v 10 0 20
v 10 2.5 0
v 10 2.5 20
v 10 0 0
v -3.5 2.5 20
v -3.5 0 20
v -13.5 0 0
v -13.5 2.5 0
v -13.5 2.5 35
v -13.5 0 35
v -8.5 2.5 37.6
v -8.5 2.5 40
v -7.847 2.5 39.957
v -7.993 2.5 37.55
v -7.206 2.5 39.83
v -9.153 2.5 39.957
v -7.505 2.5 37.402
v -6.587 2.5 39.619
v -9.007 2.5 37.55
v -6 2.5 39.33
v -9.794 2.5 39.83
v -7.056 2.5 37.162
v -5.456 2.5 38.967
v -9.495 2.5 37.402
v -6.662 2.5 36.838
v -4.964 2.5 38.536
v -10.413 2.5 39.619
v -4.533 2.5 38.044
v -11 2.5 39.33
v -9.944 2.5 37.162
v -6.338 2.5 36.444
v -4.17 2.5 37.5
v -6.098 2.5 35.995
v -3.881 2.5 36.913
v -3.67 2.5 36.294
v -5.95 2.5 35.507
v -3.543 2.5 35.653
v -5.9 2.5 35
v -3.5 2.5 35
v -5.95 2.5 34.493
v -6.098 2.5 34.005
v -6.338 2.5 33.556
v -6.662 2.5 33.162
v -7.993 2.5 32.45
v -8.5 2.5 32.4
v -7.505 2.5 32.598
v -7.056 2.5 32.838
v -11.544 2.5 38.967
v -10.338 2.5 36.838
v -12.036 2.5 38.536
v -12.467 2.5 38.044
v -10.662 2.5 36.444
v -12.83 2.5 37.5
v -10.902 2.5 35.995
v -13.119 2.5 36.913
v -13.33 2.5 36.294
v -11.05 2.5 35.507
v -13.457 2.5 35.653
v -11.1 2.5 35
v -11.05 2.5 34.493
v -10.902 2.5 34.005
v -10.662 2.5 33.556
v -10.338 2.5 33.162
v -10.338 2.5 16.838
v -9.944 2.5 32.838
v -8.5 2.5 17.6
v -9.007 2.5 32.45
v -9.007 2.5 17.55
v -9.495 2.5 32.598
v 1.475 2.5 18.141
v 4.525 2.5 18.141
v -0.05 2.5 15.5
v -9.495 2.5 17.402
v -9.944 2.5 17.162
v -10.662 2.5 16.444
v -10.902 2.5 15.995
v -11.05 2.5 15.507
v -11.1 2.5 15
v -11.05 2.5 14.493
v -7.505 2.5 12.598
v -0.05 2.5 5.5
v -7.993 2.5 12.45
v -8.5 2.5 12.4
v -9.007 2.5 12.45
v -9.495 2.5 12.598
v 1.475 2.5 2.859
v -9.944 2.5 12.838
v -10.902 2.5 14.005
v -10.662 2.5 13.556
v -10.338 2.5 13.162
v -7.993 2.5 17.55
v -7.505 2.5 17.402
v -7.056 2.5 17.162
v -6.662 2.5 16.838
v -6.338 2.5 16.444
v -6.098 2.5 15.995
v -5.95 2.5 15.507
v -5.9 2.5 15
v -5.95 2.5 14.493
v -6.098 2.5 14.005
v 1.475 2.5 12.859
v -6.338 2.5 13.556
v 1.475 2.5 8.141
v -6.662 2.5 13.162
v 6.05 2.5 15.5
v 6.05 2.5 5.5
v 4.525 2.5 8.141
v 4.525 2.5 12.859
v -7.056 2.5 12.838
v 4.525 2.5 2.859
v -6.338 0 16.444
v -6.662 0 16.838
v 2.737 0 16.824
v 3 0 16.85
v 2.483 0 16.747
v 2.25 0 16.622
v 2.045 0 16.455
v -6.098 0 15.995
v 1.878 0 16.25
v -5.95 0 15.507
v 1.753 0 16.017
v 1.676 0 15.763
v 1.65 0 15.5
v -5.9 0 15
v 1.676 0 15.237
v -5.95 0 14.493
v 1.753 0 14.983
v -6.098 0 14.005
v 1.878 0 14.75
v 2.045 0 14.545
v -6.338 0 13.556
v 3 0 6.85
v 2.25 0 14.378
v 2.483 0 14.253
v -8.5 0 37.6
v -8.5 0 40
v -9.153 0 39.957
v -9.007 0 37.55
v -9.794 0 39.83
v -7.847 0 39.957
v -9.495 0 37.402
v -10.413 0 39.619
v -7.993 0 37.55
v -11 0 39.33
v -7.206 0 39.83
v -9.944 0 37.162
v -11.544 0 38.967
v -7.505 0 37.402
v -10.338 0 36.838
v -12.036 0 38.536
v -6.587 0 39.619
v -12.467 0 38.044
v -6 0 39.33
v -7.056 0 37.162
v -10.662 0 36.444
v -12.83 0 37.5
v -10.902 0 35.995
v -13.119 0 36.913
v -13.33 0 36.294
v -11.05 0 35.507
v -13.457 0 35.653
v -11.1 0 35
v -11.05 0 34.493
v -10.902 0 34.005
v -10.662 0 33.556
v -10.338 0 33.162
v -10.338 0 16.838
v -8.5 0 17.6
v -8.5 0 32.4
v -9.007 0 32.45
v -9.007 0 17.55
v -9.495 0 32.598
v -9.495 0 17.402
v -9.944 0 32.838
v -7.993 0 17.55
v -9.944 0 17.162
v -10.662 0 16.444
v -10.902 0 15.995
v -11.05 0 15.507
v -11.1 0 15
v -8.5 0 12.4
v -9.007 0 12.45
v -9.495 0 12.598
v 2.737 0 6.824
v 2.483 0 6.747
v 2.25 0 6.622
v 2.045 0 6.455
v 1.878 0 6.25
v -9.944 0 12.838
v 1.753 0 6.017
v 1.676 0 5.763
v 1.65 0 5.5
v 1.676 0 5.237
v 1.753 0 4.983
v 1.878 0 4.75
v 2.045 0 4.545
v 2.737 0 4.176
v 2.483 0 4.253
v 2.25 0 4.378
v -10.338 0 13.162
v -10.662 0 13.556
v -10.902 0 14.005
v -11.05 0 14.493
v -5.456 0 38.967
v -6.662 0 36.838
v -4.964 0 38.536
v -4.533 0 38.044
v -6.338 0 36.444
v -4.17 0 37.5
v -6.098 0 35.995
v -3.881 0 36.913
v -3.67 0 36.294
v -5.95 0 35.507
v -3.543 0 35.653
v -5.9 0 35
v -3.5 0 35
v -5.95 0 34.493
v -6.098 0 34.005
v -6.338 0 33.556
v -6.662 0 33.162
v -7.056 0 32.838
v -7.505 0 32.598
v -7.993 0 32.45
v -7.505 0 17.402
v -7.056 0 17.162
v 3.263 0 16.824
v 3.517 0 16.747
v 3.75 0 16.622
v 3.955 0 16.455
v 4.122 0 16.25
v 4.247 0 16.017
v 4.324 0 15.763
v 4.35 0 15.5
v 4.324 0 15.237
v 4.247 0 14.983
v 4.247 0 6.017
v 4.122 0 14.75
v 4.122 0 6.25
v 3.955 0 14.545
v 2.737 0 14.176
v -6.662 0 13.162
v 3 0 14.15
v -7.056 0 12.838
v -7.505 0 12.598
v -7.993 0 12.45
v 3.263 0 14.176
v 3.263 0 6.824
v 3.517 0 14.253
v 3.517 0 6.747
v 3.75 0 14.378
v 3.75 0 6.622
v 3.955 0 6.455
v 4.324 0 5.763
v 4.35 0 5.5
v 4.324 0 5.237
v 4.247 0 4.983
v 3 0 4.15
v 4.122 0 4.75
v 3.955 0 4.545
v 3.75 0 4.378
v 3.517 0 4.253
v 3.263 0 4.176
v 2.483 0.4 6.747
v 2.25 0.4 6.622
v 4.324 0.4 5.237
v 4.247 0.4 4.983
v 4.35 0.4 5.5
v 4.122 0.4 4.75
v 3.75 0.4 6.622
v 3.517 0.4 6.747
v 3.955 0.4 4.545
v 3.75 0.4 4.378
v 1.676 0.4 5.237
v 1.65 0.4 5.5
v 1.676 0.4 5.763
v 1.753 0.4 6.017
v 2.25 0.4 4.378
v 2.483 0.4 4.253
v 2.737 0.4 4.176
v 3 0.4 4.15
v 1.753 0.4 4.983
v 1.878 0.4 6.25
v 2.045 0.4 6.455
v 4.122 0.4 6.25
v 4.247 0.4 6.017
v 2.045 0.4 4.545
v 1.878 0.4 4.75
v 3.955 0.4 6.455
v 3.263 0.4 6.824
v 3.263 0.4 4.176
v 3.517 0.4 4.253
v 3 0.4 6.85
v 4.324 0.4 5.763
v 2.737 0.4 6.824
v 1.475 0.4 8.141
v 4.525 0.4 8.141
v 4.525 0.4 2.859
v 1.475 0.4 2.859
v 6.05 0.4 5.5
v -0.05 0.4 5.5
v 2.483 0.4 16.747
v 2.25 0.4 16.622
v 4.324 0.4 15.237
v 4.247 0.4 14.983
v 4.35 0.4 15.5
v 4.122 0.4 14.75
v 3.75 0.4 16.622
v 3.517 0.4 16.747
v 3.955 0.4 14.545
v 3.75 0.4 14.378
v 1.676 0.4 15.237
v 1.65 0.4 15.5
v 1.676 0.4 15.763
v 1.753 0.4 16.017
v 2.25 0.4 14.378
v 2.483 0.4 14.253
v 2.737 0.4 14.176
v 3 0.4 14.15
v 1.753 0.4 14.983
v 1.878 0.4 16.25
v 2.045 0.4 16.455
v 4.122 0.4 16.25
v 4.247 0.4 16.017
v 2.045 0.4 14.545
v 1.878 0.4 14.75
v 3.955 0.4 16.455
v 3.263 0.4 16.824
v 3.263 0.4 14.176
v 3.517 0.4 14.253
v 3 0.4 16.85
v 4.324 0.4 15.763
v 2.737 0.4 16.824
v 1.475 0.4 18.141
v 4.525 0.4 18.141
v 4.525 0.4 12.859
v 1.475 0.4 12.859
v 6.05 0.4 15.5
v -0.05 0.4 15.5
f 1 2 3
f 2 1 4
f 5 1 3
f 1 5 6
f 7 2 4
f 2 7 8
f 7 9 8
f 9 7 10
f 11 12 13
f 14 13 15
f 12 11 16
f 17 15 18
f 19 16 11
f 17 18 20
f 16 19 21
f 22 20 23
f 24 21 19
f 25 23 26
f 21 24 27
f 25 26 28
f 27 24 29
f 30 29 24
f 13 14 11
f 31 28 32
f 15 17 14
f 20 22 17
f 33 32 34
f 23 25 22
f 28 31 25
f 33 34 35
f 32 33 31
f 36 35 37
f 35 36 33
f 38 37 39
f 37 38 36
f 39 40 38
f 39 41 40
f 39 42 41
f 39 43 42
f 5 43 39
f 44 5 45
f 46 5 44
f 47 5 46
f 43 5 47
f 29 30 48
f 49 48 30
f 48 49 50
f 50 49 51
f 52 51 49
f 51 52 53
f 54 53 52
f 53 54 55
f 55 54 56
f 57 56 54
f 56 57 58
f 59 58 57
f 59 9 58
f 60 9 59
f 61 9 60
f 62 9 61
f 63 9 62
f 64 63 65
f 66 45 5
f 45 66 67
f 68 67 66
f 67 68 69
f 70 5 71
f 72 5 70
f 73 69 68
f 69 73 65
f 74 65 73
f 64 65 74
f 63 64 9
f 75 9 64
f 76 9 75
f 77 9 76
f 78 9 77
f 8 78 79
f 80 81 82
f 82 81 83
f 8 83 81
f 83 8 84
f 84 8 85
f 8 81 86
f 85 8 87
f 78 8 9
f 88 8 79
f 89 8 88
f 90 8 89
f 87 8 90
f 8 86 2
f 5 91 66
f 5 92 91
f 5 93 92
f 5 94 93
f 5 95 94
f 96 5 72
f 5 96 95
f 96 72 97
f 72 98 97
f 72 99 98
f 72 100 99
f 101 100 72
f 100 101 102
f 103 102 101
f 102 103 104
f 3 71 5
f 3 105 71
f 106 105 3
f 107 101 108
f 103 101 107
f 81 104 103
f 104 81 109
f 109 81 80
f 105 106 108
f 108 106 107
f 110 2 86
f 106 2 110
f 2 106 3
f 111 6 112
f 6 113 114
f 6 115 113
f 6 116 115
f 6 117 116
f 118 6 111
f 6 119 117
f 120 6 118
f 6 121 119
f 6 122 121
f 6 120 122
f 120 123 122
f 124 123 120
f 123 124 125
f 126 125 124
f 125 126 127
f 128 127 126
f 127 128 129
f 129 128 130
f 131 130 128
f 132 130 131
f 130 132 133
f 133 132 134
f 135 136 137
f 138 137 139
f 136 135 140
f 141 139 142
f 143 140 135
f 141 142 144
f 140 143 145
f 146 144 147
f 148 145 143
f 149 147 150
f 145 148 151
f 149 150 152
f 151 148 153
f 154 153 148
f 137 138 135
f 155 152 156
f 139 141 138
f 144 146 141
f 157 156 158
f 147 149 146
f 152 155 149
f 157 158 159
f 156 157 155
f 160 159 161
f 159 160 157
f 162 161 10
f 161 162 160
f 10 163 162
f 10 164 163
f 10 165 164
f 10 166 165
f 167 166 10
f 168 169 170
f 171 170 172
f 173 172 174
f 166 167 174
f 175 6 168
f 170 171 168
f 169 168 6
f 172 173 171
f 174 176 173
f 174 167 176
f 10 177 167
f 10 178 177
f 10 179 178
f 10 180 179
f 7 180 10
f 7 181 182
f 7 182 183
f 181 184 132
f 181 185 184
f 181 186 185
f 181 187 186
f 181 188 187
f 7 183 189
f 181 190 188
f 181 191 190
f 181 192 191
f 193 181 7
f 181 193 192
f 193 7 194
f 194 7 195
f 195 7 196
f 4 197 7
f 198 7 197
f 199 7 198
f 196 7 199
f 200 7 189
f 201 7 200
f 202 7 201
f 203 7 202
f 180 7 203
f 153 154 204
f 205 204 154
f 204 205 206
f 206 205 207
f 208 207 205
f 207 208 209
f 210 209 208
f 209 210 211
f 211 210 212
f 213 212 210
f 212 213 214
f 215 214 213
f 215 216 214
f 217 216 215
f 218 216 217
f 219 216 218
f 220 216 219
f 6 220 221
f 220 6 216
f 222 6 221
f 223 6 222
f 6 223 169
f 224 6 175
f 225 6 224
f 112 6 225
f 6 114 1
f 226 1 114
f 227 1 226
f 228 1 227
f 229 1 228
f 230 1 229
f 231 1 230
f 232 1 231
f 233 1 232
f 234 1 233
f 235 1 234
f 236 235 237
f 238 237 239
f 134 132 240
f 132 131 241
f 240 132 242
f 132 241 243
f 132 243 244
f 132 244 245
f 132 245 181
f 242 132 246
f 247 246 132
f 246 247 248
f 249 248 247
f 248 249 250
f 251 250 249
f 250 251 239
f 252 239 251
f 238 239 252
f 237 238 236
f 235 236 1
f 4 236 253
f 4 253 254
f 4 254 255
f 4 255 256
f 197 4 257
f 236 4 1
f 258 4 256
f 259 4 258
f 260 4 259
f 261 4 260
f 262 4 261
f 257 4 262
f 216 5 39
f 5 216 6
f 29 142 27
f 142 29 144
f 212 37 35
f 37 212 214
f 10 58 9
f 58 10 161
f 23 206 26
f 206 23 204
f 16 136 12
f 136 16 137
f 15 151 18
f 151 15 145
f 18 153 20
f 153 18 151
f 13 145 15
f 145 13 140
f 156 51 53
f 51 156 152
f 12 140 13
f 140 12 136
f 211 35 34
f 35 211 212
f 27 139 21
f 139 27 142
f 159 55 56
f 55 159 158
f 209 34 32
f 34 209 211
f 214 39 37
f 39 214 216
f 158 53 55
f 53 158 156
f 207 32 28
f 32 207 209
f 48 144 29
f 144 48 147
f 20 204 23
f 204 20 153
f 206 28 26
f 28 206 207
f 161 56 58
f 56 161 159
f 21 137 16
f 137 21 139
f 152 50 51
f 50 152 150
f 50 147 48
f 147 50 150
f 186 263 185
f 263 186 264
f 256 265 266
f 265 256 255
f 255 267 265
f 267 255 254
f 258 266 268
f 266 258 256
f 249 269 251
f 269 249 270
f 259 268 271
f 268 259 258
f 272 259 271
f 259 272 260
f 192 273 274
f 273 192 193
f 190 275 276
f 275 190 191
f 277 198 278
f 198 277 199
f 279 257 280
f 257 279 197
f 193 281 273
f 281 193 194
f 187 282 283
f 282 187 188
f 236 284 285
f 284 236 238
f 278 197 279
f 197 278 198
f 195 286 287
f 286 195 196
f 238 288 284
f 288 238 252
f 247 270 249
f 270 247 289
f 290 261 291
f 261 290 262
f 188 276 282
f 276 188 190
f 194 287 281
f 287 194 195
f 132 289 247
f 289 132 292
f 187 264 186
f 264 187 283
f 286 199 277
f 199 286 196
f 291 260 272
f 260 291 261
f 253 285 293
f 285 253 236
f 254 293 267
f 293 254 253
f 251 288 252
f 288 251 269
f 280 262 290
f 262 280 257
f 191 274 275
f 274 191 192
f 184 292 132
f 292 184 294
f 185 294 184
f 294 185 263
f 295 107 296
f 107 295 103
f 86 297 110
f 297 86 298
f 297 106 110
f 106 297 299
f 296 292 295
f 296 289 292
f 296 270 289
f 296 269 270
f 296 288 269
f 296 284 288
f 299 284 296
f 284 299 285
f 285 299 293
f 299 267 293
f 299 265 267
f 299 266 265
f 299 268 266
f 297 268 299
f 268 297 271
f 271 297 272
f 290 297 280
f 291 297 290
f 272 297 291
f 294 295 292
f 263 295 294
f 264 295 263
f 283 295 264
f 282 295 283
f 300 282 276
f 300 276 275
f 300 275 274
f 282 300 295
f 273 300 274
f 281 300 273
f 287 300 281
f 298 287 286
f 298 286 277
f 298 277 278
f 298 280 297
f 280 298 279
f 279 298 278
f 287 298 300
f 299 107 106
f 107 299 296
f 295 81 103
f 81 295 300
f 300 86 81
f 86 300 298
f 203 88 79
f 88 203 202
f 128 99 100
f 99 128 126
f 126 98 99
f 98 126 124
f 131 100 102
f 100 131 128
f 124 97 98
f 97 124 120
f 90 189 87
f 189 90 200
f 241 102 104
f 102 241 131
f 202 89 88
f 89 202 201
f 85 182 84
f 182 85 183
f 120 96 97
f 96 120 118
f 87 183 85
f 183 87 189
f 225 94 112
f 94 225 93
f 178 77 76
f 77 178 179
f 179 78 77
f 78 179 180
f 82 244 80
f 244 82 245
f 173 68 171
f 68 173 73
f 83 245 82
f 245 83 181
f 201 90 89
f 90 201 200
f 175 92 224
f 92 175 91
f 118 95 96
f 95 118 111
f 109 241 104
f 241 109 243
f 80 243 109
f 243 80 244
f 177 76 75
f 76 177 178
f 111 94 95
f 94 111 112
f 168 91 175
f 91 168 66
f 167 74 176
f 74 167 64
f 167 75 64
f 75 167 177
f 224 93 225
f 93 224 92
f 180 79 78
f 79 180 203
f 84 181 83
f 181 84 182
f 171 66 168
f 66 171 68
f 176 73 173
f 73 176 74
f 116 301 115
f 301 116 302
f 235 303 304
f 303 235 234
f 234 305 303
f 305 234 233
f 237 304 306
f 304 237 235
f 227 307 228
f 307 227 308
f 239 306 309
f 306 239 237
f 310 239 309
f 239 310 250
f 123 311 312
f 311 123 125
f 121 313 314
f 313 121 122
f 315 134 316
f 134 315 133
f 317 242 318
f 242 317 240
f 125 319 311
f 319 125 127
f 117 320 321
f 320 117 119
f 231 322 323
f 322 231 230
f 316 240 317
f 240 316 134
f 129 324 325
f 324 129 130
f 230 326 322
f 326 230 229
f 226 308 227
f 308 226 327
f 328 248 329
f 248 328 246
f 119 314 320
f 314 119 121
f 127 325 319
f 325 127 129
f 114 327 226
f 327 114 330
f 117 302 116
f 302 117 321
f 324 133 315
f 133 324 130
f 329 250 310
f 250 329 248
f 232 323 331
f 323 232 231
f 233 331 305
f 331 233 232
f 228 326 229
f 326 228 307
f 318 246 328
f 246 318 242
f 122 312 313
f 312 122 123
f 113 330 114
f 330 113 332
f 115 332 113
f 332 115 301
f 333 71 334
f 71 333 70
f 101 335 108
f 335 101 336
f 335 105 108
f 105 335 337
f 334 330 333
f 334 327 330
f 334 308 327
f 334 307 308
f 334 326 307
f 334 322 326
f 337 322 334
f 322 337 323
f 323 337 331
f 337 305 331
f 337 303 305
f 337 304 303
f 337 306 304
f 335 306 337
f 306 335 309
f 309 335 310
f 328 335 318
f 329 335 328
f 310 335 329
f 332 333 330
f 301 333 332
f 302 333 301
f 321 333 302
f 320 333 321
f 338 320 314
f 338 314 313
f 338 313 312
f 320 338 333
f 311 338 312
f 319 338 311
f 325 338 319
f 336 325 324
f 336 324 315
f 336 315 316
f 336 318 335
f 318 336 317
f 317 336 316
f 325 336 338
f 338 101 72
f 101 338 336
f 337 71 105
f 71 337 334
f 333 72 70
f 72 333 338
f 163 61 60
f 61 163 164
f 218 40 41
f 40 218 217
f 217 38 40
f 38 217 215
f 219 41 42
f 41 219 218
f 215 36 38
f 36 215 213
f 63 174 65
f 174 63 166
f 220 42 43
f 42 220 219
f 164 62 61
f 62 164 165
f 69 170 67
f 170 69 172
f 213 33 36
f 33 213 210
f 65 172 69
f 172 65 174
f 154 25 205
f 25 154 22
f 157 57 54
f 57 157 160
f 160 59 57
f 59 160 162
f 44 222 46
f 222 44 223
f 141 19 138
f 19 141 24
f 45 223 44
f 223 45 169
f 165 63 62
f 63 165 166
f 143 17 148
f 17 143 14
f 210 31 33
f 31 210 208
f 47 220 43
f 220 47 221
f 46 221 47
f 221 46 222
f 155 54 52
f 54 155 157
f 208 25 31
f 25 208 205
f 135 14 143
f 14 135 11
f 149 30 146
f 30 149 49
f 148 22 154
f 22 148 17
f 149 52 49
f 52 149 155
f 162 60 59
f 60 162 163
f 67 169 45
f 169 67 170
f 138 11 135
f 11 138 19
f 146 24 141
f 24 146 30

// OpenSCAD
difference() {
    union() {
        translate([-13.5, 0, 0]) cube([23.5, 2.5, 20]);
        translate([-13.5, 0, 0]) cube([10, 2.5, 35]);
        translate([-8.5, 0, 35]) rotate([-90, 0, 0]) cylinder(d=10, h=2.5, $fn=48);
    }
    for(i=[0, 1]) {
        translate([3,-1,5.5+i*10]) rotate([-90, 0, 0]) cylinder(d=2.7, h=20, $fn=32);
        translate([3, 2.5-2.1, 5.5+i*10]) rotate([-90, 0, 0]) cylinder(d=6.1, h=20, $fn=6);
        translate([-3.5-4.5-0.5,-1, 15+i*20]) rotate([-90, 0, 0]) cylinder(d=5.2, h=20, $fn=32);
    }
}
